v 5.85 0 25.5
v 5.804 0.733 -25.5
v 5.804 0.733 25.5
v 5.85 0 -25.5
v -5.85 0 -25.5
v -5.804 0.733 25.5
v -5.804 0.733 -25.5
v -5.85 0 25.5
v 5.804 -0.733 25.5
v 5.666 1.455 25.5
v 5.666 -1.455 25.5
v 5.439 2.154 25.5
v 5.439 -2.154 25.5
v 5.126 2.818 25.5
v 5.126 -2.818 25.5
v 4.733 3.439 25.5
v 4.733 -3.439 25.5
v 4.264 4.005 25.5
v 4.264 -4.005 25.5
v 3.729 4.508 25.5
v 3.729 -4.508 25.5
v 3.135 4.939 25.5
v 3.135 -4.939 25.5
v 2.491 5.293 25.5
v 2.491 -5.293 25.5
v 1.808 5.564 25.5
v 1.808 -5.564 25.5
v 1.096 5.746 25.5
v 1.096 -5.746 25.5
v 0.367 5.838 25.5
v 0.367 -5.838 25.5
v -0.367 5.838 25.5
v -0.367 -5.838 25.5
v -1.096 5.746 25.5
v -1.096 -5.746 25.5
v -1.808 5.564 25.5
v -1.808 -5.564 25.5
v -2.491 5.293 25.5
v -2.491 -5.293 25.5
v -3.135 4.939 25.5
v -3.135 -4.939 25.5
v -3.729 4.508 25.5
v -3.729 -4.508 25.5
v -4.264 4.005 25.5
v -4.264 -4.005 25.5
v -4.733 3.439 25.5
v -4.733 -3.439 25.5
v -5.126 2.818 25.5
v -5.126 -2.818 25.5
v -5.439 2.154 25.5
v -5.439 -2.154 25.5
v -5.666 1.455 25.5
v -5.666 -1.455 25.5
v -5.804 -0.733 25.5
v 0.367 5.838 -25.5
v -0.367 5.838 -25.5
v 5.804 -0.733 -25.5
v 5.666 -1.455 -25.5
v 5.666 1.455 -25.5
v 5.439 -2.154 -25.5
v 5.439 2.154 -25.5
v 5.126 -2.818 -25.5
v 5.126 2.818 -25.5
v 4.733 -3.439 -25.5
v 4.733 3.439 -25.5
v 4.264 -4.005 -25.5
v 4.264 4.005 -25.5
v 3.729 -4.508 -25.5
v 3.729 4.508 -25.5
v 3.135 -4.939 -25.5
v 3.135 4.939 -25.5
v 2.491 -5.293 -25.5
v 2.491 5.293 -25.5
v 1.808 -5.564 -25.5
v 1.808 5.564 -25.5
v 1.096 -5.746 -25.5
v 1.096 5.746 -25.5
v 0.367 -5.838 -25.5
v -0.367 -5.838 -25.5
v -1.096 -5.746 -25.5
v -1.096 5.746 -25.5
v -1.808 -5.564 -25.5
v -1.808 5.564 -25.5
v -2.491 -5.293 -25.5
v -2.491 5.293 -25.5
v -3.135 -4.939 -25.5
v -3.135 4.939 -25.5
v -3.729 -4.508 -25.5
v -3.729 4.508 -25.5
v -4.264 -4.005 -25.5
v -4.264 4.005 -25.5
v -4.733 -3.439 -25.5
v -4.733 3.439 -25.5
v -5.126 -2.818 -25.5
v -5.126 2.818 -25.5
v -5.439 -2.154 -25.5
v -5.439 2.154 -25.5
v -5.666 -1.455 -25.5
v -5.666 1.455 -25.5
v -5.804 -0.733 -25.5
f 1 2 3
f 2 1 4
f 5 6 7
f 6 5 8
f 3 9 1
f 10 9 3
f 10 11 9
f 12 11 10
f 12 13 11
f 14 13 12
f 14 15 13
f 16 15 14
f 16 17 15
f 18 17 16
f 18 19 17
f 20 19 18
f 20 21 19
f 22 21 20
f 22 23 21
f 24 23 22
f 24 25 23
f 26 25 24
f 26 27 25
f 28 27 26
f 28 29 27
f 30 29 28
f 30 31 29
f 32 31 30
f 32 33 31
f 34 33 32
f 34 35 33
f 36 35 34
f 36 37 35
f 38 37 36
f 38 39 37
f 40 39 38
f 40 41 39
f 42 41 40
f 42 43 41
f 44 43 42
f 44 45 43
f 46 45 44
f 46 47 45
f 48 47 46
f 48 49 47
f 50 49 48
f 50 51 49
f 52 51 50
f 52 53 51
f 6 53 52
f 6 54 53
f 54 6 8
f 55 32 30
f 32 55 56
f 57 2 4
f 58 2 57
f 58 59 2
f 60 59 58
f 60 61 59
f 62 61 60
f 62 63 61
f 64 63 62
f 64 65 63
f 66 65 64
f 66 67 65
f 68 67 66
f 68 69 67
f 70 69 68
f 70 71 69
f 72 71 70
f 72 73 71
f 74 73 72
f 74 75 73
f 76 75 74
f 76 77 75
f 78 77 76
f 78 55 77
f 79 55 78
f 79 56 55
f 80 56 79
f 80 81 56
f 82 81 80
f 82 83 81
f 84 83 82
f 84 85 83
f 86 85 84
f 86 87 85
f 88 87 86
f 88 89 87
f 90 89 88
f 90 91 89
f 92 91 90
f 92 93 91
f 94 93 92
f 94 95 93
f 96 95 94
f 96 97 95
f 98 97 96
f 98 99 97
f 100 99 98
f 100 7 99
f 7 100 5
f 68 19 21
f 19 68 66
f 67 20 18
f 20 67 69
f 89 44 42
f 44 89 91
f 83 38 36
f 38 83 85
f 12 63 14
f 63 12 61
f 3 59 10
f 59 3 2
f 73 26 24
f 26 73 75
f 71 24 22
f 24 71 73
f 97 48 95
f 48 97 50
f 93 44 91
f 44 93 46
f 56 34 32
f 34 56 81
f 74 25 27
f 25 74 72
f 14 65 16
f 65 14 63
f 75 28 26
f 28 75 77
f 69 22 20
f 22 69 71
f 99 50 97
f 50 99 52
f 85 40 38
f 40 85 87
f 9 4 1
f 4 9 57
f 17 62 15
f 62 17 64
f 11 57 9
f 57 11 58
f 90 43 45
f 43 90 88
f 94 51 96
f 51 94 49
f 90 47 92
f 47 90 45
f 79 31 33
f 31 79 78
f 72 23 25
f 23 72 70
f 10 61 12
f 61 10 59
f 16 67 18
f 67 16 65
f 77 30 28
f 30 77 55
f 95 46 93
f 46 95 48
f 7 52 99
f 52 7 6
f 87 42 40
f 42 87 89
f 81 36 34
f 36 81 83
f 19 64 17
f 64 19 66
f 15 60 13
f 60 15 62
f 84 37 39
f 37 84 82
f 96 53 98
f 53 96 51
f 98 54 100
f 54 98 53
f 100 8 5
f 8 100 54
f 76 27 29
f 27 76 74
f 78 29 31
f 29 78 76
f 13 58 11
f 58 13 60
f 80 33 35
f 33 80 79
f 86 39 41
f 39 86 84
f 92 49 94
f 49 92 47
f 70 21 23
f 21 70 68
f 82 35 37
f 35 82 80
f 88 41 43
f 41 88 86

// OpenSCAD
$fn = 50;


difference() {
	union() {
		translate(v = [0, 0, -25.5000000000]) {
			cylinder(h = 51, r = 5.8500000000);
		}
	}
	union() {
		translate(v = [0, 0, -100.0000000000]) {
			cylinder(h = 200, r = 0);
		}
	}
}
